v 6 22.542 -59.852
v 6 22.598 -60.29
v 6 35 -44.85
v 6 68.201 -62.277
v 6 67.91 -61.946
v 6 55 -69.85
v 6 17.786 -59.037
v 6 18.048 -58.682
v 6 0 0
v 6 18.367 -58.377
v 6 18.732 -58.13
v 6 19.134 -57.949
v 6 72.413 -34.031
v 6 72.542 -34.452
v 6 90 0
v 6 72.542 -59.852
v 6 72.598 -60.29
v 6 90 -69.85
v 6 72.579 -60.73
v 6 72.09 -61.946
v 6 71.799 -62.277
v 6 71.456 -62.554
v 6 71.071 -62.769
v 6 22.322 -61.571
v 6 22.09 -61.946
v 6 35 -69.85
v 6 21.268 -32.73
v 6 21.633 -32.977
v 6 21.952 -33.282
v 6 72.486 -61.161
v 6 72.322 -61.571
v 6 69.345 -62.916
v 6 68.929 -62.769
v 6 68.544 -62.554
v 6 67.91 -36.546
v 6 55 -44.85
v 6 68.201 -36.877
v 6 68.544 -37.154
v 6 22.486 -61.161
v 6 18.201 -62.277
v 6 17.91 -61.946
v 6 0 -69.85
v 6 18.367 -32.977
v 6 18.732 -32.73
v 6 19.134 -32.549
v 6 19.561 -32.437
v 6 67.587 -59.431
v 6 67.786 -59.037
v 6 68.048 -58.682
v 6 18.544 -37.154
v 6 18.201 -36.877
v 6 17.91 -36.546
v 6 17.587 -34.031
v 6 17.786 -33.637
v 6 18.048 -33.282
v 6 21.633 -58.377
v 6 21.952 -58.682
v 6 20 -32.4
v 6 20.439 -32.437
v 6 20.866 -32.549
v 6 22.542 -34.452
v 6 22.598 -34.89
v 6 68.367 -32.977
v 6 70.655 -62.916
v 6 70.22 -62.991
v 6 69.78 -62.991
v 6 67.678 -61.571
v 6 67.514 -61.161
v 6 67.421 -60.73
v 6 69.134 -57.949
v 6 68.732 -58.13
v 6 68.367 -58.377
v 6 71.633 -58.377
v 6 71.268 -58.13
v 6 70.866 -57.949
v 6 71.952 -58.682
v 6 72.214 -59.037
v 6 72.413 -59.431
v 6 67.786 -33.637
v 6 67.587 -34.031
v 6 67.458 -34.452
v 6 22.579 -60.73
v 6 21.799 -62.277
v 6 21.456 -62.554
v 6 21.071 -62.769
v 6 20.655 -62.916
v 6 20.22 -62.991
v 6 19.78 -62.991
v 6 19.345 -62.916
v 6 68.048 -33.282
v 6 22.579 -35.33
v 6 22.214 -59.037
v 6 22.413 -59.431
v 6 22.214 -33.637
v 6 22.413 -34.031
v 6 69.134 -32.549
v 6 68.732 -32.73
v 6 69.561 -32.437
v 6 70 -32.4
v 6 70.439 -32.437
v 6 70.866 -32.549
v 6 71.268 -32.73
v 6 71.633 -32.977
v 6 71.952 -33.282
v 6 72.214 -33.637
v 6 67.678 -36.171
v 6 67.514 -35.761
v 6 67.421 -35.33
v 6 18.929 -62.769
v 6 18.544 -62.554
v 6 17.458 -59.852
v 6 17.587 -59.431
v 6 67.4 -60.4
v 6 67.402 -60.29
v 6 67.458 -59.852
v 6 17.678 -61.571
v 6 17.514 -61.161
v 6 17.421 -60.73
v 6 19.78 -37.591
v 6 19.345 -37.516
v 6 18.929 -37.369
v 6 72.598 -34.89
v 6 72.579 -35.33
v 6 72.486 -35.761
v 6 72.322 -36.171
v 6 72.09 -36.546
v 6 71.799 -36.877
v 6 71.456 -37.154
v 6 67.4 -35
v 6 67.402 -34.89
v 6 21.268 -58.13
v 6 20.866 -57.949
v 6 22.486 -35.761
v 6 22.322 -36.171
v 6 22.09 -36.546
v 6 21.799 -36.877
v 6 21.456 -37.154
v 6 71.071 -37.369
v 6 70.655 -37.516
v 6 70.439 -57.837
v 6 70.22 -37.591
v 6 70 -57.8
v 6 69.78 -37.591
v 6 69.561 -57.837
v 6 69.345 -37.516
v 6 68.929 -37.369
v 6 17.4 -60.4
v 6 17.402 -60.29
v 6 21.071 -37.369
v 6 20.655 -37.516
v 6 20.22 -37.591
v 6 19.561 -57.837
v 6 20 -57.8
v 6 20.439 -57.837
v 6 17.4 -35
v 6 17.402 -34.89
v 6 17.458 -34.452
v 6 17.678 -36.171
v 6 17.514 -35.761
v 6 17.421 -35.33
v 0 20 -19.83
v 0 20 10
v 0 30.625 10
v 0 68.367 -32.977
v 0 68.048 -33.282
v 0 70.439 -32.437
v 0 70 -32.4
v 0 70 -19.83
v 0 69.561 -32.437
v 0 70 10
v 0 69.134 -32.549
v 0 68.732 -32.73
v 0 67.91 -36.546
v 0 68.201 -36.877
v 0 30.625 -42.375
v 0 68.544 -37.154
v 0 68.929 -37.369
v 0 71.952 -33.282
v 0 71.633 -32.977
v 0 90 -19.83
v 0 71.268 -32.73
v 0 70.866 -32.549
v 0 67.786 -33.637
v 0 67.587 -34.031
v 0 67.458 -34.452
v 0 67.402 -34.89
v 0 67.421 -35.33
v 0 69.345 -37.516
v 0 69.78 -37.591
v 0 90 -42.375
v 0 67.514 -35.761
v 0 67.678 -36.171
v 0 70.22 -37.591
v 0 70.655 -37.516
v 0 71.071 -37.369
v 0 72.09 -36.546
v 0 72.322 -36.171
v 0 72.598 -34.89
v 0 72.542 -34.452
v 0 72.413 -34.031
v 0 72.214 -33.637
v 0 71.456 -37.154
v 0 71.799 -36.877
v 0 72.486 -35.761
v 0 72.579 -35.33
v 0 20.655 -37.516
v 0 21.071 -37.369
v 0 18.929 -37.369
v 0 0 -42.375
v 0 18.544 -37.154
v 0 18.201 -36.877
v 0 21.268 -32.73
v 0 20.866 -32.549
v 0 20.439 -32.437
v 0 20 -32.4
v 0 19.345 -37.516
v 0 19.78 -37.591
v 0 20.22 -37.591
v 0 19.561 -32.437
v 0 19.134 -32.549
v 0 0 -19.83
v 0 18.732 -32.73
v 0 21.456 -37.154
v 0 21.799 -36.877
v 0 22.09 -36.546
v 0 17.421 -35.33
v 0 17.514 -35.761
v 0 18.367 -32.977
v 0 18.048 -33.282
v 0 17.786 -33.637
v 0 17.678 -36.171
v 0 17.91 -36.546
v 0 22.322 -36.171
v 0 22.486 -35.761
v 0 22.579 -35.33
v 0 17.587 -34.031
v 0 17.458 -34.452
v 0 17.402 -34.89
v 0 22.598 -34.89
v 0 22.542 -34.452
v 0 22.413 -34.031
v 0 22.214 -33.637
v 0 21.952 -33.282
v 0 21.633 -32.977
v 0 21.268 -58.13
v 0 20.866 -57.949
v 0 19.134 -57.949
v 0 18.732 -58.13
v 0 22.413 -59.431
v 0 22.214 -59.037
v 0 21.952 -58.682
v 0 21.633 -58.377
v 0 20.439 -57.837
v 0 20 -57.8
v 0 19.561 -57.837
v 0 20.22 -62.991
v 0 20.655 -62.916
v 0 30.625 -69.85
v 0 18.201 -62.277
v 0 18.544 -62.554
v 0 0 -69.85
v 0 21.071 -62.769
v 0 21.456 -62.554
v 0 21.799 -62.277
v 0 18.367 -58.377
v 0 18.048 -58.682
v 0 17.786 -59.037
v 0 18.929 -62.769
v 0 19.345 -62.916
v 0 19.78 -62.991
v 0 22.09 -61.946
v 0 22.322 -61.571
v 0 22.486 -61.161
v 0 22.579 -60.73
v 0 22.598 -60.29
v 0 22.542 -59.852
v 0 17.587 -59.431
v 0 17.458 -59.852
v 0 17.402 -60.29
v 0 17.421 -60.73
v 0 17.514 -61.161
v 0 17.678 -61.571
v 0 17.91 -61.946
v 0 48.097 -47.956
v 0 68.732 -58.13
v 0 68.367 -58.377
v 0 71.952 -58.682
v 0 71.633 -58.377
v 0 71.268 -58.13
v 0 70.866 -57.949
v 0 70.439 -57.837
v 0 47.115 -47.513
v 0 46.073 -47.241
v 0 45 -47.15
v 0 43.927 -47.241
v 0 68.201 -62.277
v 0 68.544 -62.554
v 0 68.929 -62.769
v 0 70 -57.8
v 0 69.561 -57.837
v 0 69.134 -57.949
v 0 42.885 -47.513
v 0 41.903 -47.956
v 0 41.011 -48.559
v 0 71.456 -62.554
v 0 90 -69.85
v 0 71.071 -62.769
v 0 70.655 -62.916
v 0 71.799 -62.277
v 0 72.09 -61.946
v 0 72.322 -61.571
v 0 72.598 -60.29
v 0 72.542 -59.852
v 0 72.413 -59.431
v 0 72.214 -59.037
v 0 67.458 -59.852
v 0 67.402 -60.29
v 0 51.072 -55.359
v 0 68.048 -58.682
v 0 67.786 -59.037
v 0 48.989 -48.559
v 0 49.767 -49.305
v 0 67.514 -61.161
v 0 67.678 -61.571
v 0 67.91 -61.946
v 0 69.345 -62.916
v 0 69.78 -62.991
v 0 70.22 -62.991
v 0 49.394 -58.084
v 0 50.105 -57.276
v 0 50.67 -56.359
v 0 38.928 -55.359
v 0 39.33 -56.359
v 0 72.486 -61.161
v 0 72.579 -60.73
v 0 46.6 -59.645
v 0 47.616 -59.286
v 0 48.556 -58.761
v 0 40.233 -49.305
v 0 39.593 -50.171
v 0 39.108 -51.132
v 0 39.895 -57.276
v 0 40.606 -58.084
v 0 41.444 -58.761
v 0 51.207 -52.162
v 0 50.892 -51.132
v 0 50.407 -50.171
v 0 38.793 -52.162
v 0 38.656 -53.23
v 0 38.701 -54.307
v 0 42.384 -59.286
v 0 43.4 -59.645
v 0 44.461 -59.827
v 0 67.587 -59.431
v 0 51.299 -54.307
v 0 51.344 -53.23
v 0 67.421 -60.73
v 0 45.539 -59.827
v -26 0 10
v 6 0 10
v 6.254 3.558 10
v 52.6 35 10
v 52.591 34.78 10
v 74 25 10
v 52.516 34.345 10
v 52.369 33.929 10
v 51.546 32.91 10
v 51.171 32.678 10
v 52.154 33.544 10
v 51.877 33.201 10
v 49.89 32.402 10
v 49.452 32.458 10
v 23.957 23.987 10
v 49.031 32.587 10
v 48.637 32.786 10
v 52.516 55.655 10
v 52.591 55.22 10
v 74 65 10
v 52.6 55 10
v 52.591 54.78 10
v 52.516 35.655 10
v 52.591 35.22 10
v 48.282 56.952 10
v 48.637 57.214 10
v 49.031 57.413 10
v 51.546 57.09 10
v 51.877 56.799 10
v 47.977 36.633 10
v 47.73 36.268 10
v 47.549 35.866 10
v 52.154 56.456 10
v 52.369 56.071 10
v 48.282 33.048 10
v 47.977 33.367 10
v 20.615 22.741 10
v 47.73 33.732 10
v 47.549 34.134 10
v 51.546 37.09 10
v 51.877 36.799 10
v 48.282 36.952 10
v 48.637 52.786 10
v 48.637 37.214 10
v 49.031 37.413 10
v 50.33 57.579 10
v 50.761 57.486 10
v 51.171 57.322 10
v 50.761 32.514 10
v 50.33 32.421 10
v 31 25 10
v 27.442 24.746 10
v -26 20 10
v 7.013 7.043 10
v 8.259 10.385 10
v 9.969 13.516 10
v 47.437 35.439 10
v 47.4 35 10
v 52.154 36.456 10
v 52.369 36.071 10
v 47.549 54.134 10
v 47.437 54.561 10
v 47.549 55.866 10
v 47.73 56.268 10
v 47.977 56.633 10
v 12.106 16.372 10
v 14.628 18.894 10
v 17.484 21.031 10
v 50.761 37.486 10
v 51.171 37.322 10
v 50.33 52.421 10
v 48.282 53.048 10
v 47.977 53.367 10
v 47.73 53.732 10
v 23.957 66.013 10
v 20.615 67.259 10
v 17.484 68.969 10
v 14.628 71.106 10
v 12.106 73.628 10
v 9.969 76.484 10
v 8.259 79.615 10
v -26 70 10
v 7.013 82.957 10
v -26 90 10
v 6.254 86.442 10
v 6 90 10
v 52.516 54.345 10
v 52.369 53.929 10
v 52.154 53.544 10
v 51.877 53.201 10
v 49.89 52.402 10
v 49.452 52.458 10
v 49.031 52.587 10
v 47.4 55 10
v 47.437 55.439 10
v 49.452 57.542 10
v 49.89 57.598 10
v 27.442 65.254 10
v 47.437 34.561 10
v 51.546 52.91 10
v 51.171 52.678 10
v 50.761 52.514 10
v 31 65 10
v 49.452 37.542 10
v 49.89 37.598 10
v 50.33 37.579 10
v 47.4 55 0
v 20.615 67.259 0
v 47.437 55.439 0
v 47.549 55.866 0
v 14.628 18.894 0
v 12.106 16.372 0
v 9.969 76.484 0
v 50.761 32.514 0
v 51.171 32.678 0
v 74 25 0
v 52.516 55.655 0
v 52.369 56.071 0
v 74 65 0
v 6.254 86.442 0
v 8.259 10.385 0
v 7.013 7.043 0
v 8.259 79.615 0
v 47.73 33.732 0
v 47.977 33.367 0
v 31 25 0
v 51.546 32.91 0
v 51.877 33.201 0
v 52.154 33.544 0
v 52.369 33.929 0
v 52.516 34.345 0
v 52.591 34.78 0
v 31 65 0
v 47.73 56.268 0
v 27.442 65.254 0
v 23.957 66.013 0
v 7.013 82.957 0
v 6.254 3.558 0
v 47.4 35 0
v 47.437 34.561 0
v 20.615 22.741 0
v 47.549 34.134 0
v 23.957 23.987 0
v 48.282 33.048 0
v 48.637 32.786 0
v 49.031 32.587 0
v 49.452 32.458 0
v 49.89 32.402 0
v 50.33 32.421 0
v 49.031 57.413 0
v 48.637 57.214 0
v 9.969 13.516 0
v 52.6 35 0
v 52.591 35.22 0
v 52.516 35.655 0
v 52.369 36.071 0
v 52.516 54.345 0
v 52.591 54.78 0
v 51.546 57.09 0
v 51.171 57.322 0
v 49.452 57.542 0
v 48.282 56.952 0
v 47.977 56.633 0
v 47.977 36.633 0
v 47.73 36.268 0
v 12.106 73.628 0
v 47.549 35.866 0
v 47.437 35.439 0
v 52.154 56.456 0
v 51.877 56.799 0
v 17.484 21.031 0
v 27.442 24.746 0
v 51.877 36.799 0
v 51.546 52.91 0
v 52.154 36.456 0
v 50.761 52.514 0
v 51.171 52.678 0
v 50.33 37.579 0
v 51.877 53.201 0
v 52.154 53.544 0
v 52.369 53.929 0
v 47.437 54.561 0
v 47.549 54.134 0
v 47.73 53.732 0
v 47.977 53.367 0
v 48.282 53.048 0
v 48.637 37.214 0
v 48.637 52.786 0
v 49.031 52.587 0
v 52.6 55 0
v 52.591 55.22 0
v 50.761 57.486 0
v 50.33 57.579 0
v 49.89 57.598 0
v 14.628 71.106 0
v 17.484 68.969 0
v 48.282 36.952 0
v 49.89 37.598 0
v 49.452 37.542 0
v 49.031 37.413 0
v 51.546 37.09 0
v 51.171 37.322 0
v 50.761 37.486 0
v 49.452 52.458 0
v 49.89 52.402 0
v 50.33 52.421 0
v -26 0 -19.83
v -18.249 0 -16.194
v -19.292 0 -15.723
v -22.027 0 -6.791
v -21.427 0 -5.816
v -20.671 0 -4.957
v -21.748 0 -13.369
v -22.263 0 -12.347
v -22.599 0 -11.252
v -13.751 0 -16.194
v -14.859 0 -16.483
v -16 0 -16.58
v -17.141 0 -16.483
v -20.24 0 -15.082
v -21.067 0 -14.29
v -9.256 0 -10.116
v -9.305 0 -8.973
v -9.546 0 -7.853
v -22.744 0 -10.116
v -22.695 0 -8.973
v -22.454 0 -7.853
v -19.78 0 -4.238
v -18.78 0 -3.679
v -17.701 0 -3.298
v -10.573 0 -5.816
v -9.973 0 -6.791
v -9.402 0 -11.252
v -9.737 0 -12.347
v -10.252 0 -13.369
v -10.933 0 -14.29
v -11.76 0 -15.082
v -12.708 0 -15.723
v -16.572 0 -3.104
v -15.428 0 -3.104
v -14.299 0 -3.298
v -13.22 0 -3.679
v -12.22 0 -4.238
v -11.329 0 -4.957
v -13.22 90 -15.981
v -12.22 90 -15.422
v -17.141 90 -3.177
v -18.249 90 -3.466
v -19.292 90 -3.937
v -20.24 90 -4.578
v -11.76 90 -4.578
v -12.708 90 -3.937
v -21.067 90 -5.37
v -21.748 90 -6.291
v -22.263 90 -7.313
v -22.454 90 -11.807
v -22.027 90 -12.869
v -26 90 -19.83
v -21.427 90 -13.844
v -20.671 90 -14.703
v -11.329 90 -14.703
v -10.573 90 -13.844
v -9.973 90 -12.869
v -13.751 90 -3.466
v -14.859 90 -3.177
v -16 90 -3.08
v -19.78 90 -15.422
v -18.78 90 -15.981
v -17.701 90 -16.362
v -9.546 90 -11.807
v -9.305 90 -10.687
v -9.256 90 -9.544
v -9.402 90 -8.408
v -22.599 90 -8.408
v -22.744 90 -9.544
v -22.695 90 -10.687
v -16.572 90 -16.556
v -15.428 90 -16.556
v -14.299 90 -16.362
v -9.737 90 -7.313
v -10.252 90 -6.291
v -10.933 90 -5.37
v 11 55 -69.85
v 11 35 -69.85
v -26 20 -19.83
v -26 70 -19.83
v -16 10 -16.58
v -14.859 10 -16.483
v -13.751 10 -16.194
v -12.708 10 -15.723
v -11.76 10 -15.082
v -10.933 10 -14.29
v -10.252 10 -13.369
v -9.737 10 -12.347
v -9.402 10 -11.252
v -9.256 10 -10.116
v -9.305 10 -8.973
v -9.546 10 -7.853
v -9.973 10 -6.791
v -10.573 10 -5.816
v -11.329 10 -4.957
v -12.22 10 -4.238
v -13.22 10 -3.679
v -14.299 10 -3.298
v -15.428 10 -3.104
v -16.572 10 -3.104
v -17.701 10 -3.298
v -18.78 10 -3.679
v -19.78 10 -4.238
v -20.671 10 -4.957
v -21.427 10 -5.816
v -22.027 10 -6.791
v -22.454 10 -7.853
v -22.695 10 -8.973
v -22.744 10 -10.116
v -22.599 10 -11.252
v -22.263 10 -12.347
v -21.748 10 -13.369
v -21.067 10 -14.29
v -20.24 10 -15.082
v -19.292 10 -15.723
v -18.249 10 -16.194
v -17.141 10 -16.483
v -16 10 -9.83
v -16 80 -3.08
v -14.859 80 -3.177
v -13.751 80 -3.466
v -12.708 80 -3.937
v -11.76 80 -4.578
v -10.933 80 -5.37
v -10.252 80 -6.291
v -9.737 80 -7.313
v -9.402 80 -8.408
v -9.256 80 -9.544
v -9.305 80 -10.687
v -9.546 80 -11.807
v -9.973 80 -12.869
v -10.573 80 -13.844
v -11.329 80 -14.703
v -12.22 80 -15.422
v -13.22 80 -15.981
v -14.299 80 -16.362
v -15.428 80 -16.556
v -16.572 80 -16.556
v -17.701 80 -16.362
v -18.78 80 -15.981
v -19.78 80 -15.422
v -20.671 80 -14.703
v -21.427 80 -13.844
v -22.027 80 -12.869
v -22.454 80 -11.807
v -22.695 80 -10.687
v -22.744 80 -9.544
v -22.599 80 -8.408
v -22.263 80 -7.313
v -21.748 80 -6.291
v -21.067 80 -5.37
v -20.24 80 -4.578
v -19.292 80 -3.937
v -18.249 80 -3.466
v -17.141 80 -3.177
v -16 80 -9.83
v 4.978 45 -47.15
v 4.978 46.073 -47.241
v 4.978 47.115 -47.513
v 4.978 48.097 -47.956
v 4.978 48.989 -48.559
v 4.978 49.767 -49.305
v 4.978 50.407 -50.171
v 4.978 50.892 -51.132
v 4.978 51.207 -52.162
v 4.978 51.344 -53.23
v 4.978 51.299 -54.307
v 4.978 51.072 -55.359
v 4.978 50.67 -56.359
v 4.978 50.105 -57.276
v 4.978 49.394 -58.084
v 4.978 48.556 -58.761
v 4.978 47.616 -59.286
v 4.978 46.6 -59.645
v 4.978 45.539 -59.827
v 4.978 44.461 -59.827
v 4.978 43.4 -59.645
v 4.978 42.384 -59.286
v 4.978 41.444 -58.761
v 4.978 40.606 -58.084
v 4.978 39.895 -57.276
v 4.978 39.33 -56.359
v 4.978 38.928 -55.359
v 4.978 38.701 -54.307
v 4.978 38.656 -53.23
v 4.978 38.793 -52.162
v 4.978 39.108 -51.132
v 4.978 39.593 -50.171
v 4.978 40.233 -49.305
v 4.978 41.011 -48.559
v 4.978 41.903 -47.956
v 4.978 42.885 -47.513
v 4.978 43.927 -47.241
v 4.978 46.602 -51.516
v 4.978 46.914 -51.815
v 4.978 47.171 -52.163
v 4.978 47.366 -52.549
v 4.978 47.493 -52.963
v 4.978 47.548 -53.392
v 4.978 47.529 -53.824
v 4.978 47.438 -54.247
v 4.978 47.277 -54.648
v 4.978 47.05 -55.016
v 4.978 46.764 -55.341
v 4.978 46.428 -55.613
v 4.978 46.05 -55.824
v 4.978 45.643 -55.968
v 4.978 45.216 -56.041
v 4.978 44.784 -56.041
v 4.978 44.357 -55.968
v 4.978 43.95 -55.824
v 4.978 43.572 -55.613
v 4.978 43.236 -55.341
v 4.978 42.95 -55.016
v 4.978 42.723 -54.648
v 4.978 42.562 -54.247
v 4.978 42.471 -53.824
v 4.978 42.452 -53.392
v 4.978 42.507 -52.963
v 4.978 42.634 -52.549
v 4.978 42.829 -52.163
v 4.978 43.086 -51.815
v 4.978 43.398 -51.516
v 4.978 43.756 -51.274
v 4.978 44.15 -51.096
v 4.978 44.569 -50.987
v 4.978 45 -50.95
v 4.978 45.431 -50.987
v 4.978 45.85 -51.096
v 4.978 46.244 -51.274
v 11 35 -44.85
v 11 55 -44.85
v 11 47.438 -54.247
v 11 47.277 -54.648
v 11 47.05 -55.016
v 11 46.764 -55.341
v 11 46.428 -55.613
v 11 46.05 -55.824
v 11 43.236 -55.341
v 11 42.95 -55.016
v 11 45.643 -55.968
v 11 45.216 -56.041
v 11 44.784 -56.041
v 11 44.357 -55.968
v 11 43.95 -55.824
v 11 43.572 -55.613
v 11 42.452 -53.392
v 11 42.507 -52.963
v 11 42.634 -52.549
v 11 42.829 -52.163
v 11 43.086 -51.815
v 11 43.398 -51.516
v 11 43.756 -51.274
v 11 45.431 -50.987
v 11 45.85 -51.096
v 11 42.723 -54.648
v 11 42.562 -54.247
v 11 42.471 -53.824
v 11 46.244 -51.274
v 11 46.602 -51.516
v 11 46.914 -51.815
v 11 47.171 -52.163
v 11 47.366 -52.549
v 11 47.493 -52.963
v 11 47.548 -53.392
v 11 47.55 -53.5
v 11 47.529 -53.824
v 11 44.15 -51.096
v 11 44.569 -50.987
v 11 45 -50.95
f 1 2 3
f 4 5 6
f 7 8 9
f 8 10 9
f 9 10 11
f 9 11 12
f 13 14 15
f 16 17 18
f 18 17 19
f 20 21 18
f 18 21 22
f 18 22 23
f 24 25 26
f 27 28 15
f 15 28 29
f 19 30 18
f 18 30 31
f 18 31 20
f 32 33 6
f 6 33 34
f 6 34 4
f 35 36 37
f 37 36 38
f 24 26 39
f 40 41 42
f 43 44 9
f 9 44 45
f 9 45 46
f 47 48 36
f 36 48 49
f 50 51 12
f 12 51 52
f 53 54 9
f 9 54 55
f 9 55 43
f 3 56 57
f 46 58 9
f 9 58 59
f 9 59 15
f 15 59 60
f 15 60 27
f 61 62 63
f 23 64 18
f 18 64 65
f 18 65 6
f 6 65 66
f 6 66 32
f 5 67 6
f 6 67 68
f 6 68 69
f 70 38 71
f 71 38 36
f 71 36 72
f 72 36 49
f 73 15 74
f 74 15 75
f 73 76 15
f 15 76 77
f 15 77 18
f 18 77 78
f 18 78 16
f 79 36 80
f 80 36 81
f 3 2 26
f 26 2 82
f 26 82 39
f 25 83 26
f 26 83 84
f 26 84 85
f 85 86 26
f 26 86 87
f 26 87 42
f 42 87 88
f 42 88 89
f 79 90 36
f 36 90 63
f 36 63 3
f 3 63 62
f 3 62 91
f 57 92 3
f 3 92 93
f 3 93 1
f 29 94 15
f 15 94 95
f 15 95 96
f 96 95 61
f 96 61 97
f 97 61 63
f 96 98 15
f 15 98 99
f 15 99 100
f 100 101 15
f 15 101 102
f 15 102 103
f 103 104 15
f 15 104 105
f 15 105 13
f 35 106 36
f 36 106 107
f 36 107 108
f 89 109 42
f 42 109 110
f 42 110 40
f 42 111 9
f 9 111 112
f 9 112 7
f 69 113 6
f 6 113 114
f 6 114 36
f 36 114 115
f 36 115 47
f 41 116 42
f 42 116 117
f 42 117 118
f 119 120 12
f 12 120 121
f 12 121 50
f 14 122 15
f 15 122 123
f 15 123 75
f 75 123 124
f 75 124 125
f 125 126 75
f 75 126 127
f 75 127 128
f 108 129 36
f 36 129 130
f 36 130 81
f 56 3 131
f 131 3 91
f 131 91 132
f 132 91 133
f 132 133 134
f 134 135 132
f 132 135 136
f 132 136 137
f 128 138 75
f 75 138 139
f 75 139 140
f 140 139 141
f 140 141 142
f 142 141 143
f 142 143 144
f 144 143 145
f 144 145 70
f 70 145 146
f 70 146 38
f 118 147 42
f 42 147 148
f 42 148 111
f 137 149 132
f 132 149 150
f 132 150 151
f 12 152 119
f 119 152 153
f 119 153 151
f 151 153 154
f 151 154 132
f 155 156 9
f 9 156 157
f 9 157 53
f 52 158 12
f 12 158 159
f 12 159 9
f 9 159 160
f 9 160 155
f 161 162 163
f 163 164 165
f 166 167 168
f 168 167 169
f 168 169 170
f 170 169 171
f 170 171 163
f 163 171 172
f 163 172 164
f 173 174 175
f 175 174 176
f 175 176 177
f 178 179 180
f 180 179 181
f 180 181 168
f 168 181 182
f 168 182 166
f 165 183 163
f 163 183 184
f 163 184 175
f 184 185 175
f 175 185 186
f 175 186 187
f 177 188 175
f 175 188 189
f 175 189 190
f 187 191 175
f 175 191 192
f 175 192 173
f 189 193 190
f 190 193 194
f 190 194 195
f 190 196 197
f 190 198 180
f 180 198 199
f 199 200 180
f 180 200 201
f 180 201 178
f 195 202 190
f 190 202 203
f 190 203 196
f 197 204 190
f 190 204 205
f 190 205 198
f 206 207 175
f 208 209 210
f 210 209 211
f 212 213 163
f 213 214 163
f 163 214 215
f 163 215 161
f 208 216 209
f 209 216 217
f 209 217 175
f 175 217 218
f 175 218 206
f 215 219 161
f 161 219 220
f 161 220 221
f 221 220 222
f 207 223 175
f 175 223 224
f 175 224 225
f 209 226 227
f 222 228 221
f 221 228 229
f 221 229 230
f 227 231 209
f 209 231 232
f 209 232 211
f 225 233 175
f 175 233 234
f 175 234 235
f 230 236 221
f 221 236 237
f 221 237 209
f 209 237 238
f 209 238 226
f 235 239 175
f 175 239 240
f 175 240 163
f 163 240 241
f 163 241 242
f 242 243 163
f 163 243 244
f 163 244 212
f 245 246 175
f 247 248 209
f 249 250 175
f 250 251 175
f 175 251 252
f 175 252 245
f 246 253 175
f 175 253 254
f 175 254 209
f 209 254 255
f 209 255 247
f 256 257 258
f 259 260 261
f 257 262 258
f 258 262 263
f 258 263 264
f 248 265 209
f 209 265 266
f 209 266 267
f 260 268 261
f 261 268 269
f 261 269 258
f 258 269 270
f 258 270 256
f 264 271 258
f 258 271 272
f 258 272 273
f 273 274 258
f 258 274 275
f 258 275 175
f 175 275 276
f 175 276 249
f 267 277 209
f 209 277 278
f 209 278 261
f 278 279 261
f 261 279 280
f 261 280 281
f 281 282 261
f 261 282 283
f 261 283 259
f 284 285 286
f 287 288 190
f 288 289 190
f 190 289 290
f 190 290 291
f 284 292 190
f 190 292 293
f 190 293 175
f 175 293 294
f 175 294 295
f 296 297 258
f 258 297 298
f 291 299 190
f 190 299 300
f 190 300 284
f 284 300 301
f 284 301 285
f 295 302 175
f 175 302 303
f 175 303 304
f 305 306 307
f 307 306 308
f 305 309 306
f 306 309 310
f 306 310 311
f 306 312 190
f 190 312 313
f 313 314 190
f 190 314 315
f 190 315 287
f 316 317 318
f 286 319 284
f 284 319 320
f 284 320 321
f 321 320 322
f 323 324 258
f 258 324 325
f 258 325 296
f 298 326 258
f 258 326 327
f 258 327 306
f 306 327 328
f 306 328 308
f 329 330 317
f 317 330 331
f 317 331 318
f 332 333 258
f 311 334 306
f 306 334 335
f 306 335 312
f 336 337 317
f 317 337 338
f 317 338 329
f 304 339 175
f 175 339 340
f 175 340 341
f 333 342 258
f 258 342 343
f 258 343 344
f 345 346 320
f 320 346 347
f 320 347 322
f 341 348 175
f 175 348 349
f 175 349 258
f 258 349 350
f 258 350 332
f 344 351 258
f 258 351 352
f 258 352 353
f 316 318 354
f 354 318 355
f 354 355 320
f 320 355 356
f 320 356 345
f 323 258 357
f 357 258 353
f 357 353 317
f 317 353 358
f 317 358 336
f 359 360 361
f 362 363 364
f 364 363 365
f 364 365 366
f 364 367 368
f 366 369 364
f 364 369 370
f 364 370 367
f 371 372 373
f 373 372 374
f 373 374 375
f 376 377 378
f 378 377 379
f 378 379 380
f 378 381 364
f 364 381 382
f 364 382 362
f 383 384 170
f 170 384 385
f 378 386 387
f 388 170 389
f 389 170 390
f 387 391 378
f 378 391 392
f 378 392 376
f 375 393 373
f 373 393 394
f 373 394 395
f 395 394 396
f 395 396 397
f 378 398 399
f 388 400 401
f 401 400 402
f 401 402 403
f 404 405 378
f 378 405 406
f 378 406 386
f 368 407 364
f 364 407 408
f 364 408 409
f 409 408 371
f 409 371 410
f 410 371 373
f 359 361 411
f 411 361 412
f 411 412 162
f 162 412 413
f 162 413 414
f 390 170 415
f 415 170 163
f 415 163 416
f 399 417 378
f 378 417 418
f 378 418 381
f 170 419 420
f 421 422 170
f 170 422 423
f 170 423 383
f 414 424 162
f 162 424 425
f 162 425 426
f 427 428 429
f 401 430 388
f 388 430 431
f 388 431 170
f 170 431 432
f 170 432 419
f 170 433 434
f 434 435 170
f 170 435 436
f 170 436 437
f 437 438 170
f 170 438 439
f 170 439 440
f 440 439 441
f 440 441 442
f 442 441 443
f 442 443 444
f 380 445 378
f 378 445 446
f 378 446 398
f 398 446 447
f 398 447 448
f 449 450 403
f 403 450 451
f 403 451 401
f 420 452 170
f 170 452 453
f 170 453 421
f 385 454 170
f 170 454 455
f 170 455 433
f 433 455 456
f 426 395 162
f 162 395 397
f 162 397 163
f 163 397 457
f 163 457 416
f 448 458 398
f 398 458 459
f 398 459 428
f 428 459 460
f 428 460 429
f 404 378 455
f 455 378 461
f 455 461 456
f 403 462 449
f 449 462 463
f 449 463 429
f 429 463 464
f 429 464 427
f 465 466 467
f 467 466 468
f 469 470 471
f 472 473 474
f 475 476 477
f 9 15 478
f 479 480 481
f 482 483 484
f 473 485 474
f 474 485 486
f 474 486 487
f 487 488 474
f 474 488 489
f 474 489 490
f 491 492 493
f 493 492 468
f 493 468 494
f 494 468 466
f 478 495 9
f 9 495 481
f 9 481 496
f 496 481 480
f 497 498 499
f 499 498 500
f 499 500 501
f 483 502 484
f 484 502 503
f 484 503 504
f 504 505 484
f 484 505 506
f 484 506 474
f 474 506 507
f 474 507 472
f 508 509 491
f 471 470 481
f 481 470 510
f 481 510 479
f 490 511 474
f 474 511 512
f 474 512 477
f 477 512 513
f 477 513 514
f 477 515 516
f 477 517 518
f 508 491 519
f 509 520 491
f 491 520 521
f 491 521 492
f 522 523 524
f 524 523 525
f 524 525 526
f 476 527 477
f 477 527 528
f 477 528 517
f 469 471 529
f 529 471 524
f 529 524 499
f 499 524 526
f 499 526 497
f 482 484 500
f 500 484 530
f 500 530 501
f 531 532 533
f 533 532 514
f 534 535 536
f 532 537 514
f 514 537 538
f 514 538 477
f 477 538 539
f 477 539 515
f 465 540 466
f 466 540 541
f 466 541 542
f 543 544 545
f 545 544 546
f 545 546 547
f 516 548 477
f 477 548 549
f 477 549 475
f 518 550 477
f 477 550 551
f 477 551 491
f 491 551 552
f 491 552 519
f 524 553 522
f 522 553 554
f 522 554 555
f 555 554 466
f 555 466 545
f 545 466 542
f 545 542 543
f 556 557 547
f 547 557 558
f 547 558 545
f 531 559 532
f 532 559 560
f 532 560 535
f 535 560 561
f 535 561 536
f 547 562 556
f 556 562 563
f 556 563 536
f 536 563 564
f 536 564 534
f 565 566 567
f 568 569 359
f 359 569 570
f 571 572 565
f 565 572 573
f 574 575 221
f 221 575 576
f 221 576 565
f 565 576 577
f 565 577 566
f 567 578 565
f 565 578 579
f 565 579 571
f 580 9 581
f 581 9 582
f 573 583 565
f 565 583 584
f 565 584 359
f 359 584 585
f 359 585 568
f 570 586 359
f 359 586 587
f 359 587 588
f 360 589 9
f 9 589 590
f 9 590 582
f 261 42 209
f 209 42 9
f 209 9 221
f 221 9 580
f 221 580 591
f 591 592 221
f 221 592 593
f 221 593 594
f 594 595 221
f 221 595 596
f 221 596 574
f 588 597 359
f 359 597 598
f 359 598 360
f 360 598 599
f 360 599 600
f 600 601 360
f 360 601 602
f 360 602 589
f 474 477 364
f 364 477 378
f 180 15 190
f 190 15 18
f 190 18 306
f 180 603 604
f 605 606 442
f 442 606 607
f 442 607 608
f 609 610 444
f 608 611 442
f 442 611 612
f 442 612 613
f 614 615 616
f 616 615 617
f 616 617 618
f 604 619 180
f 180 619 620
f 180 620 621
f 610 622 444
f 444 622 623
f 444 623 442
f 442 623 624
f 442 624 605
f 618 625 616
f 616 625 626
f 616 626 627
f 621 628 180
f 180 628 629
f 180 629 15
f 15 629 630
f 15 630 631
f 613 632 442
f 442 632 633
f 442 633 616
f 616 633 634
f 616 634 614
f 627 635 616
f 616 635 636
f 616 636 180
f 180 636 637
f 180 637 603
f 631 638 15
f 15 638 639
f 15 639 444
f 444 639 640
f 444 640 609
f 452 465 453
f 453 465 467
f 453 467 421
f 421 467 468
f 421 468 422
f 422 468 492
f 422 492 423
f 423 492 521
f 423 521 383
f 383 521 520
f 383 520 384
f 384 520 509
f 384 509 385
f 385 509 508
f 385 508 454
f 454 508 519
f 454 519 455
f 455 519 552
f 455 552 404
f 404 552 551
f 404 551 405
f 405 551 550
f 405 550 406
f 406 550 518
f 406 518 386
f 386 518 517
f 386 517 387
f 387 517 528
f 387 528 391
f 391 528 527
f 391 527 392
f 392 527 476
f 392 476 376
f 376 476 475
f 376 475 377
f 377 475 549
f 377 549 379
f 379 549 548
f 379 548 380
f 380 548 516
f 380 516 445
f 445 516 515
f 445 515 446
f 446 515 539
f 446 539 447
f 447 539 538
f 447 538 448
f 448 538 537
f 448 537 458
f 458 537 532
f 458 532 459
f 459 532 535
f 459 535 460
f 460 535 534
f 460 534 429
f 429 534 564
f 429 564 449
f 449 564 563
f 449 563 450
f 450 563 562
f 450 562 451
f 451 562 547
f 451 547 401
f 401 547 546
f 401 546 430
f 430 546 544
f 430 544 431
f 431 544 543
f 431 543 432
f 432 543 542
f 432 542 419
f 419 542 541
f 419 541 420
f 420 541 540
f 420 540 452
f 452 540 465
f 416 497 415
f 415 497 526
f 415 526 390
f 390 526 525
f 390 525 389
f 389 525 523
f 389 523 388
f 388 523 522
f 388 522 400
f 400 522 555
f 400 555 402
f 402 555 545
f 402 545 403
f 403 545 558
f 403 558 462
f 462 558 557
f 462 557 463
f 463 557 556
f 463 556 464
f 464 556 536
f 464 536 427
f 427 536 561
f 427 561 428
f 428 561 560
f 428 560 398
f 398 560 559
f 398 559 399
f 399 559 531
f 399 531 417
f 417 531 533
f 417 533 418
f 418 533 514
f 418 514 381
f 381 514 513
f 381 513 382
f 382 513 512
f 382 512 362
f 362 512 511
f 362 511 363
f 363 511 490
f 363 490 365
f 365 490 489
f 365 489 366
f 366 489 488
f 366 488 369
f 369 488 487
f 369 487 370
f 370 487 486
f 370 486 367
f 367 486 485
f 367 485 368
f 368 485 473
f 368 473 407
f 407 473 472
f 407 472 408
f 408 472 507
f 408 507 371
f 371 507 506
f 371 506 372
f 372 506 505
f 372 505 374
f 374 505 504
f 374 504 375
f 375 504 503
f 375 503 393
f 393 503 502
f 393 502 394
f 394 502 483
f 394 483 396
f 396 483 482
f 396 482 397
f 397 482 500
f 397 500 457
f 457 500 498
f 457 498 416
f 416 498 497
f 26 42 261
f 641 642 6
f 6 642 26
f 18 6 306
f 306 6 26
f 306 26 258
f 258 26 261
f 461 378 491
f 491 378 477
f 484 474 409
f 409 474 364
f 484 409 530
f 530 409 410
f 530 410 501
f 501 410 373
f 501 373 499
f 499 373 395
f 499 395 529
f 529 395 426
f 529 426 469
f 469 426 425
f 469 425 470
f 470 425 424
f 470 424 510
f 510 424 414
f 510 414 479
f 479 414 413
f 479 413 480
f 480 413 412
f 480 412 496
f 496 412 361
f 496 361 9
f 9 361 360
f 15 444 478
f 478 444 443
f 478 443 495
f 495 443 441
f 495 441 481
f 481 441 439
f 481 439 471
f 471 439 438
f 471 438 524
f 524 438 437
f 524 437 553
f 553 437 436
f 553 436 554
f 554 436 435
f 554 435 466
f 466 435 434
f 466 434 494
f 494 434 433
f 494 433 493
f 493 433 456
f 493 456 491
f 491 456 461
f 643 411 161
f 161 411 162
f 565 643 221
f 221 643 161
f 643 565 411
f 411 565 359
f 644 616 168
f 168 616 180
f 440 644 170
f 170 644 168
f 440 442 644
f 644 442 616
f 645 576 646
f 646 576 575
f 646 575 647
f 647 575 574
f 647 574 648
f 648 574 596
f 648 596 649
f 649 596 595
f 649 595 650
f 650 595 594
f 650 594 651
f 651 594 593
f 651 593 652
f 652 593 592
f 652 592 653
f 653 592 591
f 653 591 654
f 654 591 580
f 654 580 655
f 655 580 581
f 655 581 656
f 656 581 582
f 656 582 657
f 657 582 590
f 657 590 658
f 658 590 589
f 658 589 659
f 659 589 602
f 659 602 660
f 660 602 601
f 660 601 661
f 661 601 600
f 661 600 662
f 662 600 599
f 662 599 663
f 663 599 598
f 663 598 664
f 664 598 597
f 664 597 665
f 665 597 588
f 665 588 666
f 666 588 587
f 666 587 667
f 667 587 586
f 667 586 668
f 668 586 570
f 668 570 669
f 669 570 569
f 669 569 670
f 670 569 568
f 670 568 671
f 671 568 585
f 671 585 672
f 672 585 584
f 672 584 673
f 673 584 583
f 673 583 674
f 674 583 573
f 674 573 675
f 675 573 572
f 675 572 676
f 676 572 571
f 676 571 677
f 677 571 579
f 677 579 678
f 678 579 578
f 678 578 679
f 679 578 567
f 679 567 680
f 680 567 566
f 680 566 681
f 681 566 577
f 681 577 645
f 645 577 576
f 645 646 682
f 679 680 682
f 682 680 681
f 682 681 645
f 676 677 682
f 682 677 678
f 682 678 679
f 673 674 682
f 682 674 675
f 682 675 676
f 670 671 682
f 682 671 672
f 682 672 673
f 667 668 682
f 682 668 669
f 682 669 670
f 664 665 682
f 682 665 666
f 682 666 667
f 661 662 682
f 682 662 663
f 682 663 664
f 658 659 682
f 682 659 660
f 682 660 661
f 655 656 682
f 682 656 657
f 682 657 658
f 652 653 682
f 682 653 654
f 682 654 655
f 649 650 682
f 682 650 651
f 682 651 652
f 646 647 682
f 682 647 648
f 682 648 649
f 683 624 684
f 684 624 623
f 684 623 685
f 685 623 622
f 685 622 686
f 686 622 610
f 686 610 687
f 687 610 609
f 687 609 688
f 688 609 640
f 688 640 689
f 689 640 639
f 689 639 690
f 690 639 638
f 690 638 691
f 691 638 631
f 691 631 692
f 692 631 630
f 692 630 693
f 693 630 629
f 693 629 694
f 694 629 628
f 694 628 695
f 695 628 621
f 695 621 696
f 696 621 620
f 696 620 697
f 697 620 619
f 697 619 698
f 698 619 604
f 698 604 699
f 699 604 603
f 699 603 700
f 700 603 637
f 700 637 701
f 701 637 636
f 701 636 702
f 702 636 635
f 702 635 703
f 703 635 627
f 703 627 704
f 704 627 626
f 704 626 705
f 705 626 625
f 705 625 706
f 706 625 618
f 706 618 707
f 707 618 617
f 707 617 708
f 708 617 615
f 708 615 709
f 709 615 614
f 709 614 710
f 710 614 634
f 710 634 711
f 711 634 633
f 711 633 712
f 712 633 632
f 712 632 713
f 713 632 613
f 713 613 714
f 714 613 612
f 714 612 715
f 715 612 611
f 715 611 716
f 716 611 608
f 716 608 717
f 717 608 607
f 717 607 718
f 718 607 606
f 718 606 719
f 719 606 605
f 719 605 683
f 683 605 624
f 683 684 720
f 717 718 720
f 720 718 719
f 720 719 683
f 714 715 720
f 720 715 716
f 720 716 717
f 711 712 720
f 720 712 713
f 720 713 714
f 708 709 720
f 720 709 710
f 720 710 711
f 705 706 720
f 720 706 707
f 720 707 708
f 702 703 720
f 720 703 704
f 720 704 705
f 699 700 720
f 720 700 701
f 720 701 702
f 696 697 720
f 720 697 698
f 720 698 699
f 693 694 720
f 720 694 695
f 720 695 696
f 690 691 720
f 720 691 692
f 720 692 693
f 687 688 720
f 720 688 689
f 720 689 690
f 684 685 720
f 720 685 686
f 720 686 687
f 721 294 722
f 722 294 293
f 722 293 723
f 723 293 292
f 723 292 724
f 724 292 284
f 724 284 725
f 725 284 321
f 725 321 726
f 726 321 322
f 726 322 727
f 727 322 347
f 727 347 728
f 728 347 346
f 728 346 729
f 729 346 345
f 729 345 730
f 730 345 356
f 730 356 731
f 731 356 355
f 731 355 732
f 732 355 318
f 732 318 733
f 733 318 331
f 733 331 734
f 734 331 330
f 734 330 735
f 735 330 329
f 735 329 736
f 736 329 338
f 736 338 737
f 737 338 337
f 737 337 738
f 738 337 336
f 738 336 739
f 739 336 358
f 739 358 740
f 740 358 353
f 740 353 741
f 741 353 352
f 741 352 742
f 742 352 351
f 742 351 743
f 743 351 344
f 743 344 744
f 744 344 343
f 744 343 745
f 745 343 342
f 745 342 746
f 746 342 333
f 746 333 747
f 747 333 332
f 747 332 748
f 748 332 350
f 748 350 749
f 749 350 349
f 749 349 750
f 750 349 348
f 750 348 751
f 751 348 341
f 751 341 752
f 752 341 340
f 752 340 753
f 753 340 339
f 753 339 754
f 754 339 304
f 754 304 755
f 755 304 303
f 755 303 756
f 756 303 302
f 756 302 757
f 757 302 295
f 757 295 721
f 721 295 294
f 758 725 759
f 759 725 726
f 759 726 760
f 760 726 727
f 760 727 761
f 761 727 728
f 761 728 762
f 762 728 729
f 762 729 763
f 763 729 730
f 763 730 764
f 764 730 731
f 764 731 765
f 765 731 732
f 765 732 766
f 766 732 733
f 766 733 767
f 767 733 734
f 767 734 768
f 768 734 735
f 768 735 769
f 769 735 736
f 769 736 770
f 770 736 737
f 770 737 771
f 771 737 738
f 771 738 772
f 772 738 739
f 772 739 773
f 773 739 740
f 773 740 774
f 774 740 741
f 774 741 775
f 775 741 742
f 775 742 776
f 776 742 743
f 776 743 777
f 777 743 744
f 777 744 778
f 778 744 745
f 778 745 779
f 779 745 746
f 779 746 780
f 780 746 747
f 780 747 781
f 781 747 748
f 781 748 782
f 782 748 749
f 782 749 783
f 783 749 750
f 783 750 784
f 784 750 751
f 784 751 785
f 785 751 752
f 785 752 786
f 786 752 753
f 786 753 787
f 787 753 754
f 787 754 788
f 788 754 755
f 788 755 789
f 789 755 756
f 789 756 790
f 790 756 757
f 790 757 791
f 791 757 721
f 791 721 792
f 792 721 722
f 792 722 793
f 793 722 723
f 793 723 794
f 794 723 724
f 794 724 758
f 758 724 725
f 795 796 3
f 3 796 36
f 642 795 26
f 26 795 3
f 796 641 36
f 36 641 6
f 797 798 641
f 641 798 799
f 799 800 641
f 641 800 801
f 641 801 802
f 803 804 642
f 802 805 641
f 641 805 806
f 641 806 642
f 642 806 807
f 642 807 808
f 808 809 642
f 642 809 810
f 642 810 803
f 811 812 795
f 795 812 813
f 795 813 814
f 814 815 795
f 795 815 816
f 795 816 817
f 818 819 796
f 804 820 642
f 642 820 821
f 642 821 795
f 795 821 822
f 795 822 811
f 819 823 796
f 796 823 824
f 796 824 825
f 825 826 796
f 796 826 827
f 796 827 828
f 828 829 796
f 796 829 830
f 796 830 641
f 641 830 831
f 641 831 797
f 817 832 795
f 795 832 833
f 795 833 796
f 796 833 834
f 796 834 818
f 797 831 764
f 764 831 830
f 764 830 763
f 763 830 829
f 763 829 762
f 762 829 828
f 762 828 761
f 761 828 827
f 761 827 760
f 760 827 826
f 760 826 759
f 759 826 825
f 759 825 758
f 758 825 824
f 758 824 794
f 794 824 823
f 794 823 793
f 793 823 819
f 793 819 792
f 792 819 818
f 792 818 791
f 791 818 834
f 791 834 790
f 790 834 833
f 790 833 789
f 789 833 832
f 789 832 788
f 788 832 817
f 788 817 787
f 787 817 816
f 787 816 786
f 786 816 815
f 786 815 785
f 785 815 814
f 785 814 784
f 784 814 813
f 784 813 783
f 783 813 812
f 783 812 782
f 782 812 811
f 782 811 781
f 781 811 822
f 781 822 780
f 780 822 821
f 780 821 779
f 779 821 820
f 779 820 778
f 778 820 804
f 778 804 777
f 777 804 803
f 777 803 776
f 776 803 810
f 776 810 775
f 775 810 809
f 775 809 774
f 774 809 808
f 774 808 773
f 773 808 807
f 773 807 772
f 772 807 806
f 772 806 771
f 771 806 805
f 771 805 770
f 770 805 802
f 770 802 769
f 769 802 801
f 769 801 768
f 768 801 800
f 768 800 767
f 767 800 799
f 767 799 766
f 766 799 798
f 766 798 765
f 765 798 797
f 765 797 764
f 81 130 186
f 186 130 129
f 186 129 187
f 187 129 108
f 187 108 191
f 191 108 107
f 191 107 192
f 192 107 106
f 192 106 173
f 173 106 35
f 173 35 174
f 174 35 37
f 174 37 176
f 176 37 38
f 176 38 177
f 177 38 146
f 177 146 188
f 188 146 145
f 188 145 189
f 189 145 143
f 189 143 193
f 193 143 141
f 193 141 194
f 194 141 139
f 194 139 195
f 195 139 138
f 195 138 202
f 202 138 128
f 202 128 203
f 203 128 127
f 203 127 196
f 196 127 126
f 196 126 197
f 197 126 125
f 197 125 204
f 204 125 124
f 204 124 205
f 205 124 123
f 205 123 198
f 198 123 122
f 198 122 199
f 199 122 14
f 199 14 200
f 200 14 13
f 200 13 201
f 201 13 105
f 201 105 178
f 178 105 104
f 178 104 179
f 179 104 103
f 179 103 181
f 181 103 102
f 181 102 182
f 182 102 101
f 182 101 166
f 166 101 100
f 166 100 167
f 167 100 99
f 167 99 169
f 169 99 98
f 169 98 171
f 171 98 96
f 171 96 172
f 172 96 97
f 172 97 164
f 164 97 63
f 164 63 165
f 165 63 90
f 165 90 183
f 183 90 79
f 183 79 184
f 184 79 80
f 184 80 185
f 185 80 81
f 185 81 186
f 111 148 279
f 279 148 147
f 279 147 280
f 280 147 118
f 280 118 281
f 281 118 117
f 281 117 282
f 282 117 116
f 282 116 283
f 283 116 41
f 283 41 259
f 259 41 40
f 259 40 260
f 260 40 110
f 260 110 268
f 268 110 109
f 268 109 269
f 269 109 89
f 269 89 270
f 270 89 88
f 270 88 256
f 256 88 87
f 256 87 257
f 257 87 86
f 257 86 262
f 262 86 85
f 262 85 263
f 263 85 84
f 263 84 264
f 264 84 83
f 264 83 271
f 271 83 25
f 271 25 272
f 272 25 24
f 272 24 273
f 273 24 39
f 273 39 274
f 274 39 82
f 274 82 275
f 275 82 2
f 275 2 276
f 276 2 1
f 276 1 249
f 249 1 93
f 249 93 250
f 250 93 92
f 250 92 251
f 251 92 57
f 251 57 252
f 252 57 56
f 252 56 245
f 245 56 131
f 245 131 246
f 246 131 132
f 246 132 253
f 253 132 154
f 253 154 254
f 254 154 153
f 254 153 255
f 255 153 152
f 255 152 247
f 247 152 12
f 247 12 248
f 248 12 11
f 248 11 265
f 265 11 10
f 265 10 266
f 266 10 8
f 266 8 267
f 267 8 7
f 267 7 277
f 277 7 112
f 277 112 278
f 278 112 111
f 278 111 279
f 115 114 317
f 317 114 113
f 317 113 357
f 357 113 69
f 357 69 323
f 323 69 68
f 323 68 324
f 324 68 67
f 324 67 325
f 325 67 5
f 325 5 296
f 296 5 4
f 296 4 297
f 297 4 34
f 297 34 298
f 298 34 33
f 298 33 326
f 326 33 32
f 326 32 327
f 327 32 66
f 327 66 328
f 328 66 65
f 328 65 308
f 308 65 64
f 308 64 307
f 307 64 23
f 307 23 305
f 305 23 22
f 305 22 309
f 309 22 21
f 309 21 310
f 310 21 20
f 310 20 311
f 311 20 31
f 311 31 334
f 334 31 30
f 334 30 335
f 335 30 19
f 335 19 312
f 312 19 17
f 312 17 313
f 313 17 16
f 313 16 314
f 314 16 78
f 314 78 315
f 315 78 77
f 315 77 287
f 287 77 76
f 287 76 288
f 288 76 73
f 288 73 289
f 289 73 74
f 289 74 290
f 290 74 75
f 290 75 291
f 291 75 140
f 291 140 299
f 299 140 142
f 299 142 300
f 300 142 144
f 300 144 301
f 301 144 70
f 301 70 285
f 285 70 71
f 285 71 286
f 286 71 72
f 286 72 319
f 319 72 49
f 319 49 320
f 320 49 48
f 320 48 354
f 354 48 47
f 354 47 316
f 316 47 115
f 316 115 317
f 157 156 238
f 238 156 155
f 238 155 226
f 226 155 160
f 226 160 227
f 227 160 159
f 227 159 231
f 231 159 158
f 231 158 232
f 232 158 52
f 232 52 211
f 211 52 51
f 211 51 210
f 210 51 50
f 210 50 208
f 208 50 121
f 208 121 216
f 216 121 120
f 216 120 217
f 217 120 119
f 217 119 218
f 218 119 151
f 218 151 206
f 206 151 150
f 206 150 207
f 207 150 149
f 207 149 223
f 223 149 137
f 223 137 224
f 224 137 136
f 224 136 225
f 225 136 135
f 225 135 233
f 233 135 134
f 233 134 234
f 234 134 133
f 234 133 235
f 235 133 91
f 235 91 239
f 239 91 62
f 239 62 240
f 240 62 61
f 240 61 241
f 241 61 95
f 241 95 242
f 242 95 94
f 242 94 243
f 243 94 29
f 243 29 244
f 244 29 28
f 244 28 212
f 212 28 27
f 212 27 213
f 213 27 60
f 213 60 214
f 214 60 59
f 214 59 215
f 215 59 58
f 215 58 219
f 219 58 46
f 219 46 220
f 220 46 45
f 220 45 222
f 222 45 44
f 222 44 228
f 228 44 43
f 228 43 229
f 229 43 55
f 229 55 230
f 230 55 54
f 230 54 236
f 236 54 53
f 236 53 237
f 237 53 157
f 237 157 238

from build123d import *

# Parameters (mm, degrees)
SKETCH1_W               = 74
SKETCH1_H               = 90
SKETCH1_R               = 2.6
BOSS_EXTRUDE1_DEPTH     = 10
SKETCH2_W               = 6
SKETCH2_H               = 90
BOSS_EXTRUDE2_DEPTH     = 69.85
SKETCH4_W               = 68
SKETCH4_H               = 25
CUT_EXTRUDE3_DEPTH      = 136.849263892
FILLET2_R               = 25
SKETCH8_W               = 29.83
SKETCH8_H               = 20
BOSS_EXTRUDE4_DEPTH     = 26
SKETCH9_R               = 6.75
CUT_EXTRUDE6_DEPTH      = 10
CUT_EXTRUDE7_START      = -10
SKETCH10_R              = 6.75
CUT_EXTRUDE7_DEPTH      = 10
SKETCH11_R              = 6.35
CUT_EXTRUDE8_DEPTH      = 4.9784
SKETCH12_W              = 25
SKETCH12_H              = 20
BOSS_EXTRUDE5_DEPTH     = 5
CUT_EXTRUDE9_DEPTH      = 134.202866961
CUT_EXTRUDE9_DEPTH_BACK = 134.202866961
SKETCH13_R              = 2.55
SKETCH14_R              = 2.6
CUT_EXTRUDE10_DEPTH     = 136.849263892


with BuildPart() as part:
    # Sketch1 → Boss-Extrude1 (new body)
    with BuildSketch(Plane.XY):
        with Locations((37, 45)):
            Rectangle(SKETCH1_W, SKETCH1_H)
        with Locations((50, 55)):
            Circle(SKETCH1_R, mode=Mode.SUBTRACT)
        with Locations((50, 35)):
            Circle(SKETCH1_R, mode=Mode.SUBTRACT)
    extrude(amount=BOSS_EXTRUDE1_DEPTH)

    # Sketch2 → Boss-Extrude2 (add)
    with BuildSketch(Plane(origin=(0, 0, 0), x_dir=(-1, 0, 0), z_dir=(0, 0, -1))):
        with Locations((-3, 45)):
            Rectangle(SKETCH2_W, SKETCH2_H)
    extrude(amount=BOSS_EXTRUDE2_DEPTH)

    # Sketch4 → Cut-Extrude3 (cut, through all)
    with BuildSketch(Plane(origin=(0, 0, 0), x_dir=(-1, 0, 0), z_dir=(0, 0, -1))):
        with Locations((-40, 77.5)):
            Rectangle(SKETCH4_W, SKETCH4_H)
        with Locations((-40, 12.5)):
            Rectangle(SKETCH4_W, SKETCH4_H)
    extrude(amount=-CUT_EXTRUDE3_DEPTH, mode=Mode.SUBTRACT)

    # Fillet2
    fillet2_edges = [part.edges().sort_by_distance(p)[0] for p in [
        (6, 65, 5),
        (6, 25, 5),
    ]]
    fillet(fillet2_edges, radius=FILLET2_R - 0.0001)  # a hair under: the kernel refuses the full size

    # Sketch8 → Boss-Extrude4 (add)
    with BuildSketch(Plane.ZY):
        with Locations((-4.915, 10)):
            Rectangle(SKETCH8_W, SKETCH8_H)
        with Locations((-4.915, 80)):
            Rectangle(SKETCH8_W, SKETCH8_H)
    extrude(amount=BOSS_EXTRUDE4_DEPTH)

    # Sketch9 → Cut-Extrude6 (cut)
    with BuildSketch(Plane.XZ):
        with Locations(Location((-16, -9.83, 0), (0, 0, 270))):
            Circle(SKETCH9_R)
    extrude(amount=-CUT_EXTRUDE6_DEPTH, mode=Mode.SUBTRACT)

    # Sketch10 → Cut-Extrude7 (cut)
    with BuildSketch(Plane(origin=(0, 90, 0), x_dir=(1, 0, 0), z_dir=(0, 1, 0)).offset(CUT_EXTRUDE7_START)):
        with Locations(Location((-16, 9.83, 0), (0, 0, 90))):
            Circle(SKETCH10_R)
    extrude(amount=CUT_EXTRUDE7_DEPTH, mode=Mode.SUBTRACT)

    # Sketch11 → Cut-Extrude8 (cut)
    with BuildSketch(Plane.ZY):
        with Locations((-53.5, 45)):
            Circle(SKETCH11_R)
    extrude(amount=-CUT_EXTRUDE8_DEPTH, mode=Mode.SUBTRACT)

    # Sketch12 → Boss-Extrude5 (add)
    with BuildSketch(Plane(origin=(6, 0, 0), x_dir=(0, 0, -1), z_dir=(1, 0, 0))):
        with Locations((57.35, 45)):
            Rectangle(SKETCH12_W, SKETCH12_H)
    extrude(amount=BOSS_EXTRUDE5_DEPTH)

    # Sketch13 → Cut-Extrude9 (cut, two sides: drawn at the far end of the back side and taken through both)
    with BuildSketch(Plane.ZY.offset(-4.9784).offset(-CUT_EXTRUDE9_DEPTH_BACK)):
        with Locations((-53.5, 45)):
            Circle(SKETCH13_R)
    extrude(amount=CUT_EXTRUDE9_DEPTH + CUT_EXTRUDE9_DEPTH_BACK, mode=Mode.SUBTRACT)

    # Sketch14 → Cut-Extrude10 (cut, through all)
    with BuildSketch(Plane.ZY):
        with Locations((-35, 70)):
            Circle(SKETCH14_R)
        with Locations((-35, 20)):
            Circle(SKETCH14_R)
        with Locations((-60.4, 70)):
            Circle(SKETCH14_R)
        with Locations((-60.4, 20)):
            Circle(SKETCH14_R)
    extrude(amount=-CUT_EXTRUDE10_DEPTH, mode=Mode.SUBTRACT)


solid = part.part
